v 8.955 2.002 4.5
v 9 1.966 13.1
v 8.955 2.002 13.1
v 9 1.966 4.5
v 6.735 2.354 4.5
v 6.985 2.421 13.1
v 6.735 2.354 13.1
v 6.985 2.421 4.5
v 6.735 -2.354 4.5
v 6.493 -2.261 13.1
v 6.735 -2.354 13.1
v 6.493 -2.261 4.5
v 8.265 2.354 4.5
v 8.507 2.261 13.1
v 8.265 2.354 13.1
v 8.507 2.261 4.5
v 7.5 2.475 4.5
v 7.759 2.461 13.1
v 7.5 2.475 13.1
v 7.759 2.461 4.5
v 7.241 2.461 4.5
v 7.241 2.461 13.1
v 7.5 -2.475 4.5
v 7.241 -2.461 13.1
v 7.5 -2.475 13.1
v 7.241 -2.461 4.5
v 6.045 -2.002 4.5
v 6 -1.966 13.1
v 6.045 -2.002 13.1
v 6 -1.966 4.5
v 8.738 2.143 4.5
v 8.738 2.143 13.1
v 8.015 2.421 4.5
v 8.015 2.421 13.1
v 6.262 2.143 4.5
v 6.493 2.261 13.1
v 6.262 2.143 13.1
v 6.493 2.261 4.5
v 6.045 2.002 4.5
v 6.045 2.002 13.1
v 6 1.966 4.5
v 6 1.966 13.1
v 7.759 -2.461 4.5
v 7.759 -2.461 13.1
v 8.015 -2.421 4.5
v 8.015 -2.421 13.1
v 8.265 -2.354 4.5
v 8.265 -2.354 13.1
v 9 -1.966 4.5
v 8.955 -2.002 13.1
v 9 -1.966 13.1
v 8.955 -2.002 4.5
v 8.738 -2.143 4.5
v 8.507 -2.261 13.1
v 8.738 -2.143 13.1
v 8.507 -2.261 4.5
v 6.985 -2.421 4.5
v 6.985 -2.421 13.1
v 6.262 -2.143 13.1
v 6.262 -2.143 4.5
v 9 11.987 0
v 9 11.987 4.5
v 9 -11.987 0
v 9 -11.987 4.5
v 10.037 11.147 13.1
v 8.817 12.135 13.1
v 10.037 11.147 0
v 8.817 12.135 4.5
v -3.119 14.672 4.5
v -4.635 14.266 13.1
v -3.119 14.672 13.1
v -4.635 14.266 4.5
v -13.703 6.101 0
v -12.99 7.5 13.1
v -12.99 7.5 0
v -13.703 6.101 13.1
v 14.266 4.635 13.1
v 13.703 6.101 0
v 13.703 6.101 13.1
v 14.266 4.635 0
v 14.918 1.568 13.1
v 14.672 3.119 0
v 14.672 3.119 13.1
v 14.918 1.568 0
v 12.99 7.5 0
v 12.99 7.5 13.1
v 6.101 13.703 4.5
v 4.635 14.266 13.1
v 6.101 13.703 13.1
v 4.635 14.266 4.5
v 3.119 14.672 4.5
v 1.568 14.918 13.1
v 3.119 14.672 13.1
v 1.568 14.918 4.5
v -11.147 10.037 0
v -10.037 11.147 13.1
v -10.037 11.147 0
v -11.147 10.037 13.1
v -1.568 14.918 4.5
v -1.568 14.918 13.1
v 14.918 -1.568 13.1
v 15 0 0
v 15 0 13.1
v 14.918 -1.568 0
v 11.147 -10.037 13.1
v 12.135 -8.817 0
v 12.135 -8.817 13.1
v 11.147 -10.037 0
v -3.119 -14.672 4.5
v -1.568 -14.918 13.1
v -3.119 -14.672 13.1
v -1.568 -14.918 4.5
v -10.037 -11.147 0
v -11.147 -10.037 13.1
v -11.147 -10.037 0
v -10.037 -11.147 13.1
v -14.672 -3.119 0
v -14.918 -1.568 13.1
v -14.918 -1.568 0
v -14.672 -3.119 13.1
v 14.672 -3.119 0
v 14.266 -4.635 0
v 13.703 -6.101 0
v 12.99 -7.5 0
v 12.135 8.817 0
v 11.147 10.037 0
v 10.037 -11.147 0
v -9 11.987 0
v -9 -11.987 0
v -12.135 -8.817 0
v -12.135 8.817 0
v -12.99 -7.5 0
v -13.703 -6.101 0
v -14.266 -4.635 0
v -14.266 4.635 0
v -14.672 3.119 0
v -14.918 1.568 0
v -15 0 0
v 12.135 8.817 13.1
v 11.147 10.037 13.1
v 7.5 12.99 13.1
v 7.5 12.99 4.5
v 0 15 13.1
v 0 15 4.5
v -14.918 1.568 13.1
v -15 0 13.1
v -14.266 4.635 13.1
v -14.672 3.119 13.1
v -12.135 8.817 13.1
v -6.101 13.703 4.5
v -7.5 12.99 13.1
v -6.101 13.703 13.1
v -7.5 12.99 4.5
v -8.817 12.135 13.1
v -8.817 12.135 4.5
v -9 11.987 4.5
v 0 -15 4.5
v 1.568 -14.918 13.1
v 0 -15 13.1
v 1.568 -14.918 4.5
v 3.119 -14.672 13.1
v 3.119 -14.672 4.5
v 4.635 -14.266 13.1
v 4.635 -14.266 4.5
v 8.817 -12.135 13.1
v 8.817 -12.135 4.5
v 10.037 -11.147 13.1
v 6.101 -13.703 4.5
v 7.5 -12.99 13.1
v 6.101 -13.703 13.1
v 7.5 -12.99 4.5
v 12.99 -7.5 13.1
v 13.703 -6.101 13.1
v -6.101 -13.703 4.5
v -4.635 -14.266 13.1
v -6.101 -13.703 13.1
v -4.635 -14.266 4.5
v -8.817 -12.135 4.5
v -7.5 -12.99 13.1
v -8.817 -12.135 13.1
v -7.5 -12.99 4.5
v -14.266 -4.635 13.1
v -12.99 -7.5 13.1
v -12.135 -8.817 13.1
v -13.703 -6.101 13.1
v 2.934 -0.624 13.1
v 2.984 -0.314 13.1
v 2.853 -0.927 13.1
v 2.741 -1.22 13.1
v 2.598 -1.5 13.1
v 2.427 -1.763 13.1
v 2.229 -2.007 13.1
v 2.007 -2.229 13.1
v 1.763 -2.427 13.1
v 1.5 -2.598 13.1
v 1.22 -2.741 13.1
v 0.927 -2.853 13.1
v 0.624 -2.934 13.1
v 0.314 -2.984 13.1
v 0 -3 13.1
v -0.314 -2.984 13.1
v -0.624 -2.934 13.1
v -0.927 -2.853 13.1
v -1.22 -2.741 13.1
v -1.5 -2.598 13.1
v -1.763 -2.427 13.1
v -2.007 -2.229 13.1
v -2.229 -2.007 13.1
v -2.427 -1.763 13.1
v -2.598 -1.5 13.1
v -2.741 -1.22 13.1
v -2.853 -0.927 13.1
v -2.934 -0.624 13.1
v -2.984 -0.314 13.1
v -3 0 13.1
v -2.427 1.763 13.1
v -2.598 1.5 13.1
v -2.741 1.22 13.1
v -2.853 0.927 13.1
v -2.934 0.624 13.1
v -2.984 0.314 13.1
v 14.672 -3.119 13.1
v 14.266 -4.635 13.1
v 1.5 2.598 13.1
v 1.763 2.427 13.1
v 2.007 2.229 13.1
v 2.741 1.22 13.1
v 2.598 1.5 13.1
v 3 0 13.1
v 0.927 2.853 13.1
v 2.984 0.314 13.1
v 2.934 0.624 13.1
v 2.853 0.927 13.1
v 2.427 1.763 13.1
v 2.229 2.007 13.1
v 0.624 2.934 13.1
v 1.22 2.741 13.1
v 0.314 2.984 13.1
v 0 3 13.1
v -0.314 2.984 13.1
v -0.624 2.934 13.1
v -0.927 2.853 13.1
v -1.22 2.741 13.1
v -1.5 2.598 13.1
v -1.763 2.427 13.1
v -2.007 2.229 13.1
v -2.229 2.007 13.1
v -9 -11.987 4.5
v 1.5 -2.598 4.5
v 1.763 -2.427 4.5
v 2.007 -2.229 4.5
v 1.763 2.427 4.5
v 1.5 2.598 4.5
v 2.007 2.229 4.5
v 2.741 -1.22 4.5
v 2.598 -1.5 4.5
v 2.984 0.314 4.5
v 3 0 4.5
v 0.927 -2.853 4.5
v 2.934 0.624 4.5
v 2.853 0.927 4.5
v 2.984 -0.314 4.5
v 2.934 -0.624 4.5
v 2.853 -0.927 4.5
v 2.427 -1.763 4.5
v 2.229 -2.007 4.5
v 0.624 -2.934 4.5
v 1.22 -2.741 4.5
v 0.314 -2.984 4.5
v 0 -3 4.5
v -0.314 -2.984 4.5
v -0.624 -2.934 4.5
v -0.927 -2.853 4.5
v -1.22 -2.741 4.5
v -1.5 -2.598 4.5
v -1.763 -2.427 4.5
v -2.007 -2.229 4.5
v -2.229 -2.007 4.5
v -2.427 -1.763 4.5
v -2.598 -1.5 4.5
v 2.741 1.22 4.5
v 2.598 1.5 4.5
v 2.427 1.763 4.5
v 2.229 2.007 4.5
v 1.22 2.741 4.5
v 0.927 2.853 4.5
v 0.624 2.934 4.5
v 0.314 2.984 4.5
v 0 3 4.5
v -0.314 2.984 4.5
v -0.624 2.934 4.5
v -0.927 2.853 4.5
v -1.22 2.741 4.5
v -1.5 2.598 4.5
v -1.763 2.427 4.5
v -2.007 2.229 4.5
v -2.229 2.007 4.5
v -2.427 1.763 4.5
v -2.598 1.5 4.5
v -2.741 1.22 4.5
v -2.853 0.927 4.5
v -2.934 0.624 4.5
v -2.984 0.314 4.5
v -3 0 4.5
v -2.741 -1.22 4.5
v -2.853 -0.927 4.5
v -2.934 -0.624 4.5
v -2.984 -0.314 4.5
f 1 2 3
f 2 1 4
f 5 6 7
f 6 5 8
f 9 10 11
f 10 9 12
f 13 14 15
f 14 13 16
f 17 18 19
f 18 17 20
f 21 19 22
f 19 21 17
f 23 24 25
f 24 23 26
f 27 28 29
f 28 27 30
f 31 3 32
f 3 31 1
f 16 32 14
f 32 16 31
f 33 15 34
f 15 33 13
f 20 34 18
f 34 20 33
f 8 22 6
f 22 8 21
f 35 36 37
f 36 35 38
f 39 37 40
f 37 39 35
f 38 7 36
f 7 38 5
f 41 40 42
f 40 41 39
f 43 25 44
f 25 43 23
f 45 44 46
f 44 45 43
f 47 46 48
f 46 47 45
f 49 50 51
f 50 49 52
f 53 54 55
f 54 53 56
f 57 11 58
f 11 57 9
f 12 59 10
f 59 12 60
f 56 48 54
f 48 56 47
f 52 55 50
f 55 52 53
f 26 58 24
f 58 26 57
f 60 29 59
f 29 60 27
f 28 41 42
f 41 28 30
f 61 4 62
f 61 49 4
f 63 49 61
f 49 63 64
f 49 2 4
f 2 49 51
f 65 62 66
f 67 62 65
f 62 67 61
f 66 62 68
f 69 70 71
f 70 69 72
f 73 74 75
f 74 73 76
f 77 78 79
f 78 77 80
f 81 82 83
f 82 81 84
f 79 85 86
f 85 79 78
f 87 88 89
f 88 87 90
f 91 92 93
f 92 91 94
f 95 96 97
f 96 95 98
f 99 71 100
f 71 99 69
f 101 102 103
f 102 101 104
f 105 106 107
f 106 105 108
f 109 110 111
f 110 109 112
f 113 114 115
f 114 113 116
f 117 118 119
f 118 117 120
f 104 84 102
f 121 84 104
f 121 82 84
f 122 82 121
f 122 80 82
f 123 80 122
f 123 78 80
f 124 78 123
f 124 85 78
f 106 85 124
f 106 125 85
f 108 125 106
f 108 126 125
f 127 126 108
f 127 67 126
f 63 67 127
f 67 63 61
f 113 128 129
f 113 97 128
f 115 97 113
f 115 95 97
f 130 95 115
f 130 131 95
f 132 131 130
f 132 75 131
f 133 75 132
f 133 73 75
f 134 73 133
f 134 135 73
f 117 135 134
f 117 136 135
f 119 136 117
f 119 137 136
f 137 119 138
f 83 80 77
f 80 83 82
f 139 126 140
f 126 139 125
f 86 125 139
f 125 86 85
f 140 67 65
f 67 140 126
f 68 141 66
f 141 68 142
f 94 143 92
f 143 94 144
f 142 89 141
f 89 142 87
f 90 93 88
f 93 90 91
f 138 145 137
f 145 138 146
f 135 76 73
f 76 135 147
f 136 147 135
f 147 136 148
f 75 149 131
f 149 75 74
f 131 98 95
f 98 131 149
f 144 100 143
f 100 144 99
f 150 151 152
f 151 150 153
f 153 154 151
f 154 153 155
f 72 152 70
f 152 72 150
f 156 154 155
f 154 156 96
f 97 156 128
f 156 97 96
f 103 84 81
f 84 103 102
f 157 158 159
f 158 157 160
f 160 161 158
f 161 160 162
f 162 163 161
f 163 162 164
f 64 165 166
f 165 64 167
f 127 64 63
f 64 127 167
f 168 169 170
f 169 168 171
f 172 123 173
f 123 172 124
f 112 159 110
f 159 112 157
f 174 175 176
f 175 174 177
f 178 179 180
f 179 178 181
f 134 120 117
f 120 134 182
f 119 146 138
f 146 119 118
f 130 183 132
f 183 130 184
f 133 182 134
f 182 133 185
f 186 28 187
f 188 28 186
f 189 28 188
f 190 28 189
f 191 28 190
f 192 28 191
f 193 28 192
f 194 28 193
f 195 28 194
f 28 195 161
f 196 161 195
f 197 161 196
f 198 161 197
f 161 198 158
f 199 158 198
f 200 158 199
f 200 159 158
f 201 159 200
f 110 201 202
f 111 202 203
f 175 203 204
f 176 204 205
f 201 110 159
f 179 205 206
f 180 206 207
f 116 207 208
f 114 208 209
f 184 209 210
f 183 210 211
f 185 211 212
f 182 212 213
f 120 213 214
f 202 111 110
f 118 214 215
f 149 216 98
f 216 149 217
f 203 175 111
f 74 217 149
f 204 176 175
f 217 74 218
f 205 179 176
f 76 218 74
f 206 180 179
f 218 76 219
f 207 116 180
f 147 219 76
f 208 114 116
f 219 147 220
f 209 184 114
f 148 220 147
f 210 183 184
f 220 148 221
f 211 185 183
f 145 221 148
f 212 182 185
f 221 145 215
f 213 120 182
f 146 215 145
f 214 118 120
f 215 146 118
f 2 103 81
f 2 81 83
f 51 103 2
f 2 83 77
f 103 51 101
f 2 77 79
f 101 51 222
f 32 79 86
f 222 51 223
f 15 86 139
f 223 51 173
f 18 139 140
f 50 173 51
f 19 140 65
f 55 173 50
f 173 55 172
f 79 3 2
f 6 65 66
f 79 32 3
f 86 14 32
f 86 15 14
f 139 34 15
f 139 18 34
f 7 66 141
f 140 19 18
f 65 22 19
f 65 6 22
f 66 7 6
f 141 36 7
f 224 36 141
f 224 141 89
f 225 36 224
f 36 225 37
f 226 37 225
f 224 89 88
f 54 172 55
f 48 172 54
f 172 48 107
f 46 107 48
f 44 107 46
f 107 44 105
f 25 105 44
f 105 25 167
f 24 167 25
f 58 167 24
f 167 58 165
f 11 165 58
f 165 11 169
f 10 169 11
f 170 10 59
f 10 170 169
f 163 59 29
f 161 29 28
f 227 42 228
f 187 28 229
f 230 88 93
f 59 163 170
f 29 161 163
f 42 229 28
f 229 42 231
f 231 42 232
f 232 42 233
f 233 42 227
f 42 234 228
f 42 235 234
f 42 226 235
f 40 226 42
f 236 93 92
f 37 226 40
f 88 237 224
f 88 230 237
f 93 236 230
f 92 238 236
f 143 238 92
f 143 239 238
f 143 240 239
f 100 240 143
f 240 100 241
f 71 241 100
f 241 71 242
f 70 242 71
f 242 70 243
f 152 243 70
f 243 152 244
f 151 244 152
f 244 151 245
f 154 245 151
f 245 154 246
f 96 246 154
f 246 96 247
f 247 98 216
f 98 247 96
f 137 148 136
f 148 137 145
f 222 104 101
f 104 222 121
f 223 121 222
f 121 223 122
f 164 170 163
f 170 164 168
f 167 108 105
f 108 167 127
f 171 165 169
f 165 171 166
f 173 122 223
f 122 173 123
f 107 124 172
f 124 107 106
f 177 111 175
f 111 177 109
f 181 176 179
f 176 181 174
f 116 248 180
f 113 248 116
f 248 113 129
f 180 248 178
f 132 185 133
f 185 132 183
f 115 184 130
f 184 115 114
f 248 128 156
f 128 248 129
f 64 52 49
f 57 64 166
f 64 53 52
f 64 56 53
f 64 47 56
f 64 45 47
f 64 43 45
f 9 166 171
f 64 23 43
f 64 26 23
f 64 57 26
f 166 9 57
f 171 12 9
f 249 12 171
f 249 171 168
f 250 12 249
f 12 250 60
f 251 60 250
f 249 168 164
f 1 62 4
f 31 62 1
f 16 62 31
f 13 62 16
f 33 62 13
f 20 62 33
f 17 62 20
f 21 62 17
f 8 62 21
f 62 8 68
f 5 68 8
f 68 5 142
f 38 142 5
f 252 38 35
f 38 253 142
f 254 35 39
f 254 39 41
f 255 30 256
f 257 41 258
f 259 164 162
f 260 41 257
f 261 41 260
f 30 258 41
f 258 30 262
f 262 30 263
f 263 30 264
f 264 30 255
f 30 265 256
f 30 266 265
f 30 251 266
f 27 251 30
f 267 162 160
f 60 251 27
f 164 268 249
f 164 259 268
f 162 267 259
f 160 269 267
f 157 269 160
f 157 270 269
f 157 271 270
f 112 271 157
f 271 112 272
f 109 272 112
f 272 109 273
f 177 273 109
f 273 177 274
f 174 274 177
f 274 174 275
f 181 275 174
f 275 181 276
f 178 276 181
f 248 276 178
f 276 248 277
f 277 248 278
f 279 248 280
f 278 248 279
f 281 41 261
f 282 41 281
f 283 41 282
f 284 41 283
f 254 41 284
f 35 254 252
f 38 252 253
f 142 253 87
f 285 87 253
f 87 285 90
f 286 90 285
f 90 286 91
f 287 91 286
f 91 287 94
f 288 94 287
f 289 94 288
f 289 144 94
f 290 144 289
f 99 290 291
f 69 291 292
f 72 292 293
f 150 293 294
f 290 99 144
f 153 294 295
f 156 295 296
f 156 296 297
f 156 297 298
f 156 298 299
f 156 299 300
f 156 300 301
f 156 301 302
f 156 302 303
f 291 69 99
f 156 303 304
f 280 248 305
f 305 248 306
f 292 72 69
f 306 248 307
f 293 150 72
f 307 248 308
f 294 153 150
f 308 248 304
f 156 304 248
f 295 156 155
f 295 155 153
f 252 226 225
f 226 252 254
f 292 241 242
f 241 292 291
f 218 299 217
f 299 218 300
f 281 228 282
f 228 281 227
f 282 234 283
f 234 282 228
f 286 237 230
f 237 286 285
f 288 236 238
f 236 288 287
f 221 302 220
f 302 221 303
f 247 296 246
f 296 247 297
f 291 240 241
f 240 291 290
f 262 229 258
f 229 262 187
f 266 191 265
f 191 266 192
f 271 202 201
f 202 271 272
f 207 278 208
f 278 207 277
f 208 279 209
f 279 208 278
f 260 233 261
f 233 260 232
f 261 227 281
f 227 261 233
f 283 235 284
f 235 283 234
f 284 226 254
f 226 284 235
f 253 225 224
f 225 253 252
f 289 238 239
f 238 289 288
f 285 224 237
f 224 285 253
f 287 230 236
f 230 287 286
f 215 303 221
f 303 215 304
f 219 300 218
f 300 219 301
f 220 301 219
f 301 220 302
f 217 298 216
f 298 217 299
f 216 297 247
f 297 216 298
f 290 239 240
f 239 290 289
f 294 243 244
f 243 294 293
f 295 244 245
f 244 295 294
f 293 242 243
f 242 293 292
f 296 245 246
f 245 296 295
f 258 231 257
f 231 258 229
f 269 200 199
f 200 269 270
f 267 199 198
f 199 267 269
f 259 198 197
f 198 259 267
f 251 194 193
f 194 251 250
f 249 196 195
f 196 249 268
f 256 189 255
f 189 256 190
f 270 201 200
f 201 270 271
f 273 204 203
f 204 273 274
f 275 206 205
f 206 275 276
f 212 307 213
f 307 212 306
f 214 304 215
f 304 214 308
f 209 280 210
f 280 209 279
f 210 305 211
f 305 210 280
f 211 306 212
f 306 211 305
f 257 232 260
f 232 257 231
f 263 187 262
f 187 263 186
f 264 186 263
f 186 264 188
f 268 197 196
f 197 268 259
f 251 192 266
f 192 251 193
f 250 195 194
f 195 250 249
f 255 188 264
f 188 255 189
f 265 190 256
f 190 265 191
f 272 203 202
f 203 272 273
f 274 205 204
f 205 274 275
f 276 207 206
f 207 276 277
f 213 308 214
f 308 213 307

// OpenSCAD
$fn=60;


difference(){
cylinder(  h=13.1, r=15);
    translate( [0, 0, -4.5])
    
cube([18,45,18],center = true);
cylinder(  h=13.8, d=6);    
    union(){
difference(){        
    translate( [7.5, 0, 0])
cylinder(  h=13.8, d=4.95);
    translate( [3.5, 0, 0])
cube([5,5,85],center = true);
    translate( [11.5, 0, 0])
cube([5,5,85],center = true);
}
}
    
    
}
